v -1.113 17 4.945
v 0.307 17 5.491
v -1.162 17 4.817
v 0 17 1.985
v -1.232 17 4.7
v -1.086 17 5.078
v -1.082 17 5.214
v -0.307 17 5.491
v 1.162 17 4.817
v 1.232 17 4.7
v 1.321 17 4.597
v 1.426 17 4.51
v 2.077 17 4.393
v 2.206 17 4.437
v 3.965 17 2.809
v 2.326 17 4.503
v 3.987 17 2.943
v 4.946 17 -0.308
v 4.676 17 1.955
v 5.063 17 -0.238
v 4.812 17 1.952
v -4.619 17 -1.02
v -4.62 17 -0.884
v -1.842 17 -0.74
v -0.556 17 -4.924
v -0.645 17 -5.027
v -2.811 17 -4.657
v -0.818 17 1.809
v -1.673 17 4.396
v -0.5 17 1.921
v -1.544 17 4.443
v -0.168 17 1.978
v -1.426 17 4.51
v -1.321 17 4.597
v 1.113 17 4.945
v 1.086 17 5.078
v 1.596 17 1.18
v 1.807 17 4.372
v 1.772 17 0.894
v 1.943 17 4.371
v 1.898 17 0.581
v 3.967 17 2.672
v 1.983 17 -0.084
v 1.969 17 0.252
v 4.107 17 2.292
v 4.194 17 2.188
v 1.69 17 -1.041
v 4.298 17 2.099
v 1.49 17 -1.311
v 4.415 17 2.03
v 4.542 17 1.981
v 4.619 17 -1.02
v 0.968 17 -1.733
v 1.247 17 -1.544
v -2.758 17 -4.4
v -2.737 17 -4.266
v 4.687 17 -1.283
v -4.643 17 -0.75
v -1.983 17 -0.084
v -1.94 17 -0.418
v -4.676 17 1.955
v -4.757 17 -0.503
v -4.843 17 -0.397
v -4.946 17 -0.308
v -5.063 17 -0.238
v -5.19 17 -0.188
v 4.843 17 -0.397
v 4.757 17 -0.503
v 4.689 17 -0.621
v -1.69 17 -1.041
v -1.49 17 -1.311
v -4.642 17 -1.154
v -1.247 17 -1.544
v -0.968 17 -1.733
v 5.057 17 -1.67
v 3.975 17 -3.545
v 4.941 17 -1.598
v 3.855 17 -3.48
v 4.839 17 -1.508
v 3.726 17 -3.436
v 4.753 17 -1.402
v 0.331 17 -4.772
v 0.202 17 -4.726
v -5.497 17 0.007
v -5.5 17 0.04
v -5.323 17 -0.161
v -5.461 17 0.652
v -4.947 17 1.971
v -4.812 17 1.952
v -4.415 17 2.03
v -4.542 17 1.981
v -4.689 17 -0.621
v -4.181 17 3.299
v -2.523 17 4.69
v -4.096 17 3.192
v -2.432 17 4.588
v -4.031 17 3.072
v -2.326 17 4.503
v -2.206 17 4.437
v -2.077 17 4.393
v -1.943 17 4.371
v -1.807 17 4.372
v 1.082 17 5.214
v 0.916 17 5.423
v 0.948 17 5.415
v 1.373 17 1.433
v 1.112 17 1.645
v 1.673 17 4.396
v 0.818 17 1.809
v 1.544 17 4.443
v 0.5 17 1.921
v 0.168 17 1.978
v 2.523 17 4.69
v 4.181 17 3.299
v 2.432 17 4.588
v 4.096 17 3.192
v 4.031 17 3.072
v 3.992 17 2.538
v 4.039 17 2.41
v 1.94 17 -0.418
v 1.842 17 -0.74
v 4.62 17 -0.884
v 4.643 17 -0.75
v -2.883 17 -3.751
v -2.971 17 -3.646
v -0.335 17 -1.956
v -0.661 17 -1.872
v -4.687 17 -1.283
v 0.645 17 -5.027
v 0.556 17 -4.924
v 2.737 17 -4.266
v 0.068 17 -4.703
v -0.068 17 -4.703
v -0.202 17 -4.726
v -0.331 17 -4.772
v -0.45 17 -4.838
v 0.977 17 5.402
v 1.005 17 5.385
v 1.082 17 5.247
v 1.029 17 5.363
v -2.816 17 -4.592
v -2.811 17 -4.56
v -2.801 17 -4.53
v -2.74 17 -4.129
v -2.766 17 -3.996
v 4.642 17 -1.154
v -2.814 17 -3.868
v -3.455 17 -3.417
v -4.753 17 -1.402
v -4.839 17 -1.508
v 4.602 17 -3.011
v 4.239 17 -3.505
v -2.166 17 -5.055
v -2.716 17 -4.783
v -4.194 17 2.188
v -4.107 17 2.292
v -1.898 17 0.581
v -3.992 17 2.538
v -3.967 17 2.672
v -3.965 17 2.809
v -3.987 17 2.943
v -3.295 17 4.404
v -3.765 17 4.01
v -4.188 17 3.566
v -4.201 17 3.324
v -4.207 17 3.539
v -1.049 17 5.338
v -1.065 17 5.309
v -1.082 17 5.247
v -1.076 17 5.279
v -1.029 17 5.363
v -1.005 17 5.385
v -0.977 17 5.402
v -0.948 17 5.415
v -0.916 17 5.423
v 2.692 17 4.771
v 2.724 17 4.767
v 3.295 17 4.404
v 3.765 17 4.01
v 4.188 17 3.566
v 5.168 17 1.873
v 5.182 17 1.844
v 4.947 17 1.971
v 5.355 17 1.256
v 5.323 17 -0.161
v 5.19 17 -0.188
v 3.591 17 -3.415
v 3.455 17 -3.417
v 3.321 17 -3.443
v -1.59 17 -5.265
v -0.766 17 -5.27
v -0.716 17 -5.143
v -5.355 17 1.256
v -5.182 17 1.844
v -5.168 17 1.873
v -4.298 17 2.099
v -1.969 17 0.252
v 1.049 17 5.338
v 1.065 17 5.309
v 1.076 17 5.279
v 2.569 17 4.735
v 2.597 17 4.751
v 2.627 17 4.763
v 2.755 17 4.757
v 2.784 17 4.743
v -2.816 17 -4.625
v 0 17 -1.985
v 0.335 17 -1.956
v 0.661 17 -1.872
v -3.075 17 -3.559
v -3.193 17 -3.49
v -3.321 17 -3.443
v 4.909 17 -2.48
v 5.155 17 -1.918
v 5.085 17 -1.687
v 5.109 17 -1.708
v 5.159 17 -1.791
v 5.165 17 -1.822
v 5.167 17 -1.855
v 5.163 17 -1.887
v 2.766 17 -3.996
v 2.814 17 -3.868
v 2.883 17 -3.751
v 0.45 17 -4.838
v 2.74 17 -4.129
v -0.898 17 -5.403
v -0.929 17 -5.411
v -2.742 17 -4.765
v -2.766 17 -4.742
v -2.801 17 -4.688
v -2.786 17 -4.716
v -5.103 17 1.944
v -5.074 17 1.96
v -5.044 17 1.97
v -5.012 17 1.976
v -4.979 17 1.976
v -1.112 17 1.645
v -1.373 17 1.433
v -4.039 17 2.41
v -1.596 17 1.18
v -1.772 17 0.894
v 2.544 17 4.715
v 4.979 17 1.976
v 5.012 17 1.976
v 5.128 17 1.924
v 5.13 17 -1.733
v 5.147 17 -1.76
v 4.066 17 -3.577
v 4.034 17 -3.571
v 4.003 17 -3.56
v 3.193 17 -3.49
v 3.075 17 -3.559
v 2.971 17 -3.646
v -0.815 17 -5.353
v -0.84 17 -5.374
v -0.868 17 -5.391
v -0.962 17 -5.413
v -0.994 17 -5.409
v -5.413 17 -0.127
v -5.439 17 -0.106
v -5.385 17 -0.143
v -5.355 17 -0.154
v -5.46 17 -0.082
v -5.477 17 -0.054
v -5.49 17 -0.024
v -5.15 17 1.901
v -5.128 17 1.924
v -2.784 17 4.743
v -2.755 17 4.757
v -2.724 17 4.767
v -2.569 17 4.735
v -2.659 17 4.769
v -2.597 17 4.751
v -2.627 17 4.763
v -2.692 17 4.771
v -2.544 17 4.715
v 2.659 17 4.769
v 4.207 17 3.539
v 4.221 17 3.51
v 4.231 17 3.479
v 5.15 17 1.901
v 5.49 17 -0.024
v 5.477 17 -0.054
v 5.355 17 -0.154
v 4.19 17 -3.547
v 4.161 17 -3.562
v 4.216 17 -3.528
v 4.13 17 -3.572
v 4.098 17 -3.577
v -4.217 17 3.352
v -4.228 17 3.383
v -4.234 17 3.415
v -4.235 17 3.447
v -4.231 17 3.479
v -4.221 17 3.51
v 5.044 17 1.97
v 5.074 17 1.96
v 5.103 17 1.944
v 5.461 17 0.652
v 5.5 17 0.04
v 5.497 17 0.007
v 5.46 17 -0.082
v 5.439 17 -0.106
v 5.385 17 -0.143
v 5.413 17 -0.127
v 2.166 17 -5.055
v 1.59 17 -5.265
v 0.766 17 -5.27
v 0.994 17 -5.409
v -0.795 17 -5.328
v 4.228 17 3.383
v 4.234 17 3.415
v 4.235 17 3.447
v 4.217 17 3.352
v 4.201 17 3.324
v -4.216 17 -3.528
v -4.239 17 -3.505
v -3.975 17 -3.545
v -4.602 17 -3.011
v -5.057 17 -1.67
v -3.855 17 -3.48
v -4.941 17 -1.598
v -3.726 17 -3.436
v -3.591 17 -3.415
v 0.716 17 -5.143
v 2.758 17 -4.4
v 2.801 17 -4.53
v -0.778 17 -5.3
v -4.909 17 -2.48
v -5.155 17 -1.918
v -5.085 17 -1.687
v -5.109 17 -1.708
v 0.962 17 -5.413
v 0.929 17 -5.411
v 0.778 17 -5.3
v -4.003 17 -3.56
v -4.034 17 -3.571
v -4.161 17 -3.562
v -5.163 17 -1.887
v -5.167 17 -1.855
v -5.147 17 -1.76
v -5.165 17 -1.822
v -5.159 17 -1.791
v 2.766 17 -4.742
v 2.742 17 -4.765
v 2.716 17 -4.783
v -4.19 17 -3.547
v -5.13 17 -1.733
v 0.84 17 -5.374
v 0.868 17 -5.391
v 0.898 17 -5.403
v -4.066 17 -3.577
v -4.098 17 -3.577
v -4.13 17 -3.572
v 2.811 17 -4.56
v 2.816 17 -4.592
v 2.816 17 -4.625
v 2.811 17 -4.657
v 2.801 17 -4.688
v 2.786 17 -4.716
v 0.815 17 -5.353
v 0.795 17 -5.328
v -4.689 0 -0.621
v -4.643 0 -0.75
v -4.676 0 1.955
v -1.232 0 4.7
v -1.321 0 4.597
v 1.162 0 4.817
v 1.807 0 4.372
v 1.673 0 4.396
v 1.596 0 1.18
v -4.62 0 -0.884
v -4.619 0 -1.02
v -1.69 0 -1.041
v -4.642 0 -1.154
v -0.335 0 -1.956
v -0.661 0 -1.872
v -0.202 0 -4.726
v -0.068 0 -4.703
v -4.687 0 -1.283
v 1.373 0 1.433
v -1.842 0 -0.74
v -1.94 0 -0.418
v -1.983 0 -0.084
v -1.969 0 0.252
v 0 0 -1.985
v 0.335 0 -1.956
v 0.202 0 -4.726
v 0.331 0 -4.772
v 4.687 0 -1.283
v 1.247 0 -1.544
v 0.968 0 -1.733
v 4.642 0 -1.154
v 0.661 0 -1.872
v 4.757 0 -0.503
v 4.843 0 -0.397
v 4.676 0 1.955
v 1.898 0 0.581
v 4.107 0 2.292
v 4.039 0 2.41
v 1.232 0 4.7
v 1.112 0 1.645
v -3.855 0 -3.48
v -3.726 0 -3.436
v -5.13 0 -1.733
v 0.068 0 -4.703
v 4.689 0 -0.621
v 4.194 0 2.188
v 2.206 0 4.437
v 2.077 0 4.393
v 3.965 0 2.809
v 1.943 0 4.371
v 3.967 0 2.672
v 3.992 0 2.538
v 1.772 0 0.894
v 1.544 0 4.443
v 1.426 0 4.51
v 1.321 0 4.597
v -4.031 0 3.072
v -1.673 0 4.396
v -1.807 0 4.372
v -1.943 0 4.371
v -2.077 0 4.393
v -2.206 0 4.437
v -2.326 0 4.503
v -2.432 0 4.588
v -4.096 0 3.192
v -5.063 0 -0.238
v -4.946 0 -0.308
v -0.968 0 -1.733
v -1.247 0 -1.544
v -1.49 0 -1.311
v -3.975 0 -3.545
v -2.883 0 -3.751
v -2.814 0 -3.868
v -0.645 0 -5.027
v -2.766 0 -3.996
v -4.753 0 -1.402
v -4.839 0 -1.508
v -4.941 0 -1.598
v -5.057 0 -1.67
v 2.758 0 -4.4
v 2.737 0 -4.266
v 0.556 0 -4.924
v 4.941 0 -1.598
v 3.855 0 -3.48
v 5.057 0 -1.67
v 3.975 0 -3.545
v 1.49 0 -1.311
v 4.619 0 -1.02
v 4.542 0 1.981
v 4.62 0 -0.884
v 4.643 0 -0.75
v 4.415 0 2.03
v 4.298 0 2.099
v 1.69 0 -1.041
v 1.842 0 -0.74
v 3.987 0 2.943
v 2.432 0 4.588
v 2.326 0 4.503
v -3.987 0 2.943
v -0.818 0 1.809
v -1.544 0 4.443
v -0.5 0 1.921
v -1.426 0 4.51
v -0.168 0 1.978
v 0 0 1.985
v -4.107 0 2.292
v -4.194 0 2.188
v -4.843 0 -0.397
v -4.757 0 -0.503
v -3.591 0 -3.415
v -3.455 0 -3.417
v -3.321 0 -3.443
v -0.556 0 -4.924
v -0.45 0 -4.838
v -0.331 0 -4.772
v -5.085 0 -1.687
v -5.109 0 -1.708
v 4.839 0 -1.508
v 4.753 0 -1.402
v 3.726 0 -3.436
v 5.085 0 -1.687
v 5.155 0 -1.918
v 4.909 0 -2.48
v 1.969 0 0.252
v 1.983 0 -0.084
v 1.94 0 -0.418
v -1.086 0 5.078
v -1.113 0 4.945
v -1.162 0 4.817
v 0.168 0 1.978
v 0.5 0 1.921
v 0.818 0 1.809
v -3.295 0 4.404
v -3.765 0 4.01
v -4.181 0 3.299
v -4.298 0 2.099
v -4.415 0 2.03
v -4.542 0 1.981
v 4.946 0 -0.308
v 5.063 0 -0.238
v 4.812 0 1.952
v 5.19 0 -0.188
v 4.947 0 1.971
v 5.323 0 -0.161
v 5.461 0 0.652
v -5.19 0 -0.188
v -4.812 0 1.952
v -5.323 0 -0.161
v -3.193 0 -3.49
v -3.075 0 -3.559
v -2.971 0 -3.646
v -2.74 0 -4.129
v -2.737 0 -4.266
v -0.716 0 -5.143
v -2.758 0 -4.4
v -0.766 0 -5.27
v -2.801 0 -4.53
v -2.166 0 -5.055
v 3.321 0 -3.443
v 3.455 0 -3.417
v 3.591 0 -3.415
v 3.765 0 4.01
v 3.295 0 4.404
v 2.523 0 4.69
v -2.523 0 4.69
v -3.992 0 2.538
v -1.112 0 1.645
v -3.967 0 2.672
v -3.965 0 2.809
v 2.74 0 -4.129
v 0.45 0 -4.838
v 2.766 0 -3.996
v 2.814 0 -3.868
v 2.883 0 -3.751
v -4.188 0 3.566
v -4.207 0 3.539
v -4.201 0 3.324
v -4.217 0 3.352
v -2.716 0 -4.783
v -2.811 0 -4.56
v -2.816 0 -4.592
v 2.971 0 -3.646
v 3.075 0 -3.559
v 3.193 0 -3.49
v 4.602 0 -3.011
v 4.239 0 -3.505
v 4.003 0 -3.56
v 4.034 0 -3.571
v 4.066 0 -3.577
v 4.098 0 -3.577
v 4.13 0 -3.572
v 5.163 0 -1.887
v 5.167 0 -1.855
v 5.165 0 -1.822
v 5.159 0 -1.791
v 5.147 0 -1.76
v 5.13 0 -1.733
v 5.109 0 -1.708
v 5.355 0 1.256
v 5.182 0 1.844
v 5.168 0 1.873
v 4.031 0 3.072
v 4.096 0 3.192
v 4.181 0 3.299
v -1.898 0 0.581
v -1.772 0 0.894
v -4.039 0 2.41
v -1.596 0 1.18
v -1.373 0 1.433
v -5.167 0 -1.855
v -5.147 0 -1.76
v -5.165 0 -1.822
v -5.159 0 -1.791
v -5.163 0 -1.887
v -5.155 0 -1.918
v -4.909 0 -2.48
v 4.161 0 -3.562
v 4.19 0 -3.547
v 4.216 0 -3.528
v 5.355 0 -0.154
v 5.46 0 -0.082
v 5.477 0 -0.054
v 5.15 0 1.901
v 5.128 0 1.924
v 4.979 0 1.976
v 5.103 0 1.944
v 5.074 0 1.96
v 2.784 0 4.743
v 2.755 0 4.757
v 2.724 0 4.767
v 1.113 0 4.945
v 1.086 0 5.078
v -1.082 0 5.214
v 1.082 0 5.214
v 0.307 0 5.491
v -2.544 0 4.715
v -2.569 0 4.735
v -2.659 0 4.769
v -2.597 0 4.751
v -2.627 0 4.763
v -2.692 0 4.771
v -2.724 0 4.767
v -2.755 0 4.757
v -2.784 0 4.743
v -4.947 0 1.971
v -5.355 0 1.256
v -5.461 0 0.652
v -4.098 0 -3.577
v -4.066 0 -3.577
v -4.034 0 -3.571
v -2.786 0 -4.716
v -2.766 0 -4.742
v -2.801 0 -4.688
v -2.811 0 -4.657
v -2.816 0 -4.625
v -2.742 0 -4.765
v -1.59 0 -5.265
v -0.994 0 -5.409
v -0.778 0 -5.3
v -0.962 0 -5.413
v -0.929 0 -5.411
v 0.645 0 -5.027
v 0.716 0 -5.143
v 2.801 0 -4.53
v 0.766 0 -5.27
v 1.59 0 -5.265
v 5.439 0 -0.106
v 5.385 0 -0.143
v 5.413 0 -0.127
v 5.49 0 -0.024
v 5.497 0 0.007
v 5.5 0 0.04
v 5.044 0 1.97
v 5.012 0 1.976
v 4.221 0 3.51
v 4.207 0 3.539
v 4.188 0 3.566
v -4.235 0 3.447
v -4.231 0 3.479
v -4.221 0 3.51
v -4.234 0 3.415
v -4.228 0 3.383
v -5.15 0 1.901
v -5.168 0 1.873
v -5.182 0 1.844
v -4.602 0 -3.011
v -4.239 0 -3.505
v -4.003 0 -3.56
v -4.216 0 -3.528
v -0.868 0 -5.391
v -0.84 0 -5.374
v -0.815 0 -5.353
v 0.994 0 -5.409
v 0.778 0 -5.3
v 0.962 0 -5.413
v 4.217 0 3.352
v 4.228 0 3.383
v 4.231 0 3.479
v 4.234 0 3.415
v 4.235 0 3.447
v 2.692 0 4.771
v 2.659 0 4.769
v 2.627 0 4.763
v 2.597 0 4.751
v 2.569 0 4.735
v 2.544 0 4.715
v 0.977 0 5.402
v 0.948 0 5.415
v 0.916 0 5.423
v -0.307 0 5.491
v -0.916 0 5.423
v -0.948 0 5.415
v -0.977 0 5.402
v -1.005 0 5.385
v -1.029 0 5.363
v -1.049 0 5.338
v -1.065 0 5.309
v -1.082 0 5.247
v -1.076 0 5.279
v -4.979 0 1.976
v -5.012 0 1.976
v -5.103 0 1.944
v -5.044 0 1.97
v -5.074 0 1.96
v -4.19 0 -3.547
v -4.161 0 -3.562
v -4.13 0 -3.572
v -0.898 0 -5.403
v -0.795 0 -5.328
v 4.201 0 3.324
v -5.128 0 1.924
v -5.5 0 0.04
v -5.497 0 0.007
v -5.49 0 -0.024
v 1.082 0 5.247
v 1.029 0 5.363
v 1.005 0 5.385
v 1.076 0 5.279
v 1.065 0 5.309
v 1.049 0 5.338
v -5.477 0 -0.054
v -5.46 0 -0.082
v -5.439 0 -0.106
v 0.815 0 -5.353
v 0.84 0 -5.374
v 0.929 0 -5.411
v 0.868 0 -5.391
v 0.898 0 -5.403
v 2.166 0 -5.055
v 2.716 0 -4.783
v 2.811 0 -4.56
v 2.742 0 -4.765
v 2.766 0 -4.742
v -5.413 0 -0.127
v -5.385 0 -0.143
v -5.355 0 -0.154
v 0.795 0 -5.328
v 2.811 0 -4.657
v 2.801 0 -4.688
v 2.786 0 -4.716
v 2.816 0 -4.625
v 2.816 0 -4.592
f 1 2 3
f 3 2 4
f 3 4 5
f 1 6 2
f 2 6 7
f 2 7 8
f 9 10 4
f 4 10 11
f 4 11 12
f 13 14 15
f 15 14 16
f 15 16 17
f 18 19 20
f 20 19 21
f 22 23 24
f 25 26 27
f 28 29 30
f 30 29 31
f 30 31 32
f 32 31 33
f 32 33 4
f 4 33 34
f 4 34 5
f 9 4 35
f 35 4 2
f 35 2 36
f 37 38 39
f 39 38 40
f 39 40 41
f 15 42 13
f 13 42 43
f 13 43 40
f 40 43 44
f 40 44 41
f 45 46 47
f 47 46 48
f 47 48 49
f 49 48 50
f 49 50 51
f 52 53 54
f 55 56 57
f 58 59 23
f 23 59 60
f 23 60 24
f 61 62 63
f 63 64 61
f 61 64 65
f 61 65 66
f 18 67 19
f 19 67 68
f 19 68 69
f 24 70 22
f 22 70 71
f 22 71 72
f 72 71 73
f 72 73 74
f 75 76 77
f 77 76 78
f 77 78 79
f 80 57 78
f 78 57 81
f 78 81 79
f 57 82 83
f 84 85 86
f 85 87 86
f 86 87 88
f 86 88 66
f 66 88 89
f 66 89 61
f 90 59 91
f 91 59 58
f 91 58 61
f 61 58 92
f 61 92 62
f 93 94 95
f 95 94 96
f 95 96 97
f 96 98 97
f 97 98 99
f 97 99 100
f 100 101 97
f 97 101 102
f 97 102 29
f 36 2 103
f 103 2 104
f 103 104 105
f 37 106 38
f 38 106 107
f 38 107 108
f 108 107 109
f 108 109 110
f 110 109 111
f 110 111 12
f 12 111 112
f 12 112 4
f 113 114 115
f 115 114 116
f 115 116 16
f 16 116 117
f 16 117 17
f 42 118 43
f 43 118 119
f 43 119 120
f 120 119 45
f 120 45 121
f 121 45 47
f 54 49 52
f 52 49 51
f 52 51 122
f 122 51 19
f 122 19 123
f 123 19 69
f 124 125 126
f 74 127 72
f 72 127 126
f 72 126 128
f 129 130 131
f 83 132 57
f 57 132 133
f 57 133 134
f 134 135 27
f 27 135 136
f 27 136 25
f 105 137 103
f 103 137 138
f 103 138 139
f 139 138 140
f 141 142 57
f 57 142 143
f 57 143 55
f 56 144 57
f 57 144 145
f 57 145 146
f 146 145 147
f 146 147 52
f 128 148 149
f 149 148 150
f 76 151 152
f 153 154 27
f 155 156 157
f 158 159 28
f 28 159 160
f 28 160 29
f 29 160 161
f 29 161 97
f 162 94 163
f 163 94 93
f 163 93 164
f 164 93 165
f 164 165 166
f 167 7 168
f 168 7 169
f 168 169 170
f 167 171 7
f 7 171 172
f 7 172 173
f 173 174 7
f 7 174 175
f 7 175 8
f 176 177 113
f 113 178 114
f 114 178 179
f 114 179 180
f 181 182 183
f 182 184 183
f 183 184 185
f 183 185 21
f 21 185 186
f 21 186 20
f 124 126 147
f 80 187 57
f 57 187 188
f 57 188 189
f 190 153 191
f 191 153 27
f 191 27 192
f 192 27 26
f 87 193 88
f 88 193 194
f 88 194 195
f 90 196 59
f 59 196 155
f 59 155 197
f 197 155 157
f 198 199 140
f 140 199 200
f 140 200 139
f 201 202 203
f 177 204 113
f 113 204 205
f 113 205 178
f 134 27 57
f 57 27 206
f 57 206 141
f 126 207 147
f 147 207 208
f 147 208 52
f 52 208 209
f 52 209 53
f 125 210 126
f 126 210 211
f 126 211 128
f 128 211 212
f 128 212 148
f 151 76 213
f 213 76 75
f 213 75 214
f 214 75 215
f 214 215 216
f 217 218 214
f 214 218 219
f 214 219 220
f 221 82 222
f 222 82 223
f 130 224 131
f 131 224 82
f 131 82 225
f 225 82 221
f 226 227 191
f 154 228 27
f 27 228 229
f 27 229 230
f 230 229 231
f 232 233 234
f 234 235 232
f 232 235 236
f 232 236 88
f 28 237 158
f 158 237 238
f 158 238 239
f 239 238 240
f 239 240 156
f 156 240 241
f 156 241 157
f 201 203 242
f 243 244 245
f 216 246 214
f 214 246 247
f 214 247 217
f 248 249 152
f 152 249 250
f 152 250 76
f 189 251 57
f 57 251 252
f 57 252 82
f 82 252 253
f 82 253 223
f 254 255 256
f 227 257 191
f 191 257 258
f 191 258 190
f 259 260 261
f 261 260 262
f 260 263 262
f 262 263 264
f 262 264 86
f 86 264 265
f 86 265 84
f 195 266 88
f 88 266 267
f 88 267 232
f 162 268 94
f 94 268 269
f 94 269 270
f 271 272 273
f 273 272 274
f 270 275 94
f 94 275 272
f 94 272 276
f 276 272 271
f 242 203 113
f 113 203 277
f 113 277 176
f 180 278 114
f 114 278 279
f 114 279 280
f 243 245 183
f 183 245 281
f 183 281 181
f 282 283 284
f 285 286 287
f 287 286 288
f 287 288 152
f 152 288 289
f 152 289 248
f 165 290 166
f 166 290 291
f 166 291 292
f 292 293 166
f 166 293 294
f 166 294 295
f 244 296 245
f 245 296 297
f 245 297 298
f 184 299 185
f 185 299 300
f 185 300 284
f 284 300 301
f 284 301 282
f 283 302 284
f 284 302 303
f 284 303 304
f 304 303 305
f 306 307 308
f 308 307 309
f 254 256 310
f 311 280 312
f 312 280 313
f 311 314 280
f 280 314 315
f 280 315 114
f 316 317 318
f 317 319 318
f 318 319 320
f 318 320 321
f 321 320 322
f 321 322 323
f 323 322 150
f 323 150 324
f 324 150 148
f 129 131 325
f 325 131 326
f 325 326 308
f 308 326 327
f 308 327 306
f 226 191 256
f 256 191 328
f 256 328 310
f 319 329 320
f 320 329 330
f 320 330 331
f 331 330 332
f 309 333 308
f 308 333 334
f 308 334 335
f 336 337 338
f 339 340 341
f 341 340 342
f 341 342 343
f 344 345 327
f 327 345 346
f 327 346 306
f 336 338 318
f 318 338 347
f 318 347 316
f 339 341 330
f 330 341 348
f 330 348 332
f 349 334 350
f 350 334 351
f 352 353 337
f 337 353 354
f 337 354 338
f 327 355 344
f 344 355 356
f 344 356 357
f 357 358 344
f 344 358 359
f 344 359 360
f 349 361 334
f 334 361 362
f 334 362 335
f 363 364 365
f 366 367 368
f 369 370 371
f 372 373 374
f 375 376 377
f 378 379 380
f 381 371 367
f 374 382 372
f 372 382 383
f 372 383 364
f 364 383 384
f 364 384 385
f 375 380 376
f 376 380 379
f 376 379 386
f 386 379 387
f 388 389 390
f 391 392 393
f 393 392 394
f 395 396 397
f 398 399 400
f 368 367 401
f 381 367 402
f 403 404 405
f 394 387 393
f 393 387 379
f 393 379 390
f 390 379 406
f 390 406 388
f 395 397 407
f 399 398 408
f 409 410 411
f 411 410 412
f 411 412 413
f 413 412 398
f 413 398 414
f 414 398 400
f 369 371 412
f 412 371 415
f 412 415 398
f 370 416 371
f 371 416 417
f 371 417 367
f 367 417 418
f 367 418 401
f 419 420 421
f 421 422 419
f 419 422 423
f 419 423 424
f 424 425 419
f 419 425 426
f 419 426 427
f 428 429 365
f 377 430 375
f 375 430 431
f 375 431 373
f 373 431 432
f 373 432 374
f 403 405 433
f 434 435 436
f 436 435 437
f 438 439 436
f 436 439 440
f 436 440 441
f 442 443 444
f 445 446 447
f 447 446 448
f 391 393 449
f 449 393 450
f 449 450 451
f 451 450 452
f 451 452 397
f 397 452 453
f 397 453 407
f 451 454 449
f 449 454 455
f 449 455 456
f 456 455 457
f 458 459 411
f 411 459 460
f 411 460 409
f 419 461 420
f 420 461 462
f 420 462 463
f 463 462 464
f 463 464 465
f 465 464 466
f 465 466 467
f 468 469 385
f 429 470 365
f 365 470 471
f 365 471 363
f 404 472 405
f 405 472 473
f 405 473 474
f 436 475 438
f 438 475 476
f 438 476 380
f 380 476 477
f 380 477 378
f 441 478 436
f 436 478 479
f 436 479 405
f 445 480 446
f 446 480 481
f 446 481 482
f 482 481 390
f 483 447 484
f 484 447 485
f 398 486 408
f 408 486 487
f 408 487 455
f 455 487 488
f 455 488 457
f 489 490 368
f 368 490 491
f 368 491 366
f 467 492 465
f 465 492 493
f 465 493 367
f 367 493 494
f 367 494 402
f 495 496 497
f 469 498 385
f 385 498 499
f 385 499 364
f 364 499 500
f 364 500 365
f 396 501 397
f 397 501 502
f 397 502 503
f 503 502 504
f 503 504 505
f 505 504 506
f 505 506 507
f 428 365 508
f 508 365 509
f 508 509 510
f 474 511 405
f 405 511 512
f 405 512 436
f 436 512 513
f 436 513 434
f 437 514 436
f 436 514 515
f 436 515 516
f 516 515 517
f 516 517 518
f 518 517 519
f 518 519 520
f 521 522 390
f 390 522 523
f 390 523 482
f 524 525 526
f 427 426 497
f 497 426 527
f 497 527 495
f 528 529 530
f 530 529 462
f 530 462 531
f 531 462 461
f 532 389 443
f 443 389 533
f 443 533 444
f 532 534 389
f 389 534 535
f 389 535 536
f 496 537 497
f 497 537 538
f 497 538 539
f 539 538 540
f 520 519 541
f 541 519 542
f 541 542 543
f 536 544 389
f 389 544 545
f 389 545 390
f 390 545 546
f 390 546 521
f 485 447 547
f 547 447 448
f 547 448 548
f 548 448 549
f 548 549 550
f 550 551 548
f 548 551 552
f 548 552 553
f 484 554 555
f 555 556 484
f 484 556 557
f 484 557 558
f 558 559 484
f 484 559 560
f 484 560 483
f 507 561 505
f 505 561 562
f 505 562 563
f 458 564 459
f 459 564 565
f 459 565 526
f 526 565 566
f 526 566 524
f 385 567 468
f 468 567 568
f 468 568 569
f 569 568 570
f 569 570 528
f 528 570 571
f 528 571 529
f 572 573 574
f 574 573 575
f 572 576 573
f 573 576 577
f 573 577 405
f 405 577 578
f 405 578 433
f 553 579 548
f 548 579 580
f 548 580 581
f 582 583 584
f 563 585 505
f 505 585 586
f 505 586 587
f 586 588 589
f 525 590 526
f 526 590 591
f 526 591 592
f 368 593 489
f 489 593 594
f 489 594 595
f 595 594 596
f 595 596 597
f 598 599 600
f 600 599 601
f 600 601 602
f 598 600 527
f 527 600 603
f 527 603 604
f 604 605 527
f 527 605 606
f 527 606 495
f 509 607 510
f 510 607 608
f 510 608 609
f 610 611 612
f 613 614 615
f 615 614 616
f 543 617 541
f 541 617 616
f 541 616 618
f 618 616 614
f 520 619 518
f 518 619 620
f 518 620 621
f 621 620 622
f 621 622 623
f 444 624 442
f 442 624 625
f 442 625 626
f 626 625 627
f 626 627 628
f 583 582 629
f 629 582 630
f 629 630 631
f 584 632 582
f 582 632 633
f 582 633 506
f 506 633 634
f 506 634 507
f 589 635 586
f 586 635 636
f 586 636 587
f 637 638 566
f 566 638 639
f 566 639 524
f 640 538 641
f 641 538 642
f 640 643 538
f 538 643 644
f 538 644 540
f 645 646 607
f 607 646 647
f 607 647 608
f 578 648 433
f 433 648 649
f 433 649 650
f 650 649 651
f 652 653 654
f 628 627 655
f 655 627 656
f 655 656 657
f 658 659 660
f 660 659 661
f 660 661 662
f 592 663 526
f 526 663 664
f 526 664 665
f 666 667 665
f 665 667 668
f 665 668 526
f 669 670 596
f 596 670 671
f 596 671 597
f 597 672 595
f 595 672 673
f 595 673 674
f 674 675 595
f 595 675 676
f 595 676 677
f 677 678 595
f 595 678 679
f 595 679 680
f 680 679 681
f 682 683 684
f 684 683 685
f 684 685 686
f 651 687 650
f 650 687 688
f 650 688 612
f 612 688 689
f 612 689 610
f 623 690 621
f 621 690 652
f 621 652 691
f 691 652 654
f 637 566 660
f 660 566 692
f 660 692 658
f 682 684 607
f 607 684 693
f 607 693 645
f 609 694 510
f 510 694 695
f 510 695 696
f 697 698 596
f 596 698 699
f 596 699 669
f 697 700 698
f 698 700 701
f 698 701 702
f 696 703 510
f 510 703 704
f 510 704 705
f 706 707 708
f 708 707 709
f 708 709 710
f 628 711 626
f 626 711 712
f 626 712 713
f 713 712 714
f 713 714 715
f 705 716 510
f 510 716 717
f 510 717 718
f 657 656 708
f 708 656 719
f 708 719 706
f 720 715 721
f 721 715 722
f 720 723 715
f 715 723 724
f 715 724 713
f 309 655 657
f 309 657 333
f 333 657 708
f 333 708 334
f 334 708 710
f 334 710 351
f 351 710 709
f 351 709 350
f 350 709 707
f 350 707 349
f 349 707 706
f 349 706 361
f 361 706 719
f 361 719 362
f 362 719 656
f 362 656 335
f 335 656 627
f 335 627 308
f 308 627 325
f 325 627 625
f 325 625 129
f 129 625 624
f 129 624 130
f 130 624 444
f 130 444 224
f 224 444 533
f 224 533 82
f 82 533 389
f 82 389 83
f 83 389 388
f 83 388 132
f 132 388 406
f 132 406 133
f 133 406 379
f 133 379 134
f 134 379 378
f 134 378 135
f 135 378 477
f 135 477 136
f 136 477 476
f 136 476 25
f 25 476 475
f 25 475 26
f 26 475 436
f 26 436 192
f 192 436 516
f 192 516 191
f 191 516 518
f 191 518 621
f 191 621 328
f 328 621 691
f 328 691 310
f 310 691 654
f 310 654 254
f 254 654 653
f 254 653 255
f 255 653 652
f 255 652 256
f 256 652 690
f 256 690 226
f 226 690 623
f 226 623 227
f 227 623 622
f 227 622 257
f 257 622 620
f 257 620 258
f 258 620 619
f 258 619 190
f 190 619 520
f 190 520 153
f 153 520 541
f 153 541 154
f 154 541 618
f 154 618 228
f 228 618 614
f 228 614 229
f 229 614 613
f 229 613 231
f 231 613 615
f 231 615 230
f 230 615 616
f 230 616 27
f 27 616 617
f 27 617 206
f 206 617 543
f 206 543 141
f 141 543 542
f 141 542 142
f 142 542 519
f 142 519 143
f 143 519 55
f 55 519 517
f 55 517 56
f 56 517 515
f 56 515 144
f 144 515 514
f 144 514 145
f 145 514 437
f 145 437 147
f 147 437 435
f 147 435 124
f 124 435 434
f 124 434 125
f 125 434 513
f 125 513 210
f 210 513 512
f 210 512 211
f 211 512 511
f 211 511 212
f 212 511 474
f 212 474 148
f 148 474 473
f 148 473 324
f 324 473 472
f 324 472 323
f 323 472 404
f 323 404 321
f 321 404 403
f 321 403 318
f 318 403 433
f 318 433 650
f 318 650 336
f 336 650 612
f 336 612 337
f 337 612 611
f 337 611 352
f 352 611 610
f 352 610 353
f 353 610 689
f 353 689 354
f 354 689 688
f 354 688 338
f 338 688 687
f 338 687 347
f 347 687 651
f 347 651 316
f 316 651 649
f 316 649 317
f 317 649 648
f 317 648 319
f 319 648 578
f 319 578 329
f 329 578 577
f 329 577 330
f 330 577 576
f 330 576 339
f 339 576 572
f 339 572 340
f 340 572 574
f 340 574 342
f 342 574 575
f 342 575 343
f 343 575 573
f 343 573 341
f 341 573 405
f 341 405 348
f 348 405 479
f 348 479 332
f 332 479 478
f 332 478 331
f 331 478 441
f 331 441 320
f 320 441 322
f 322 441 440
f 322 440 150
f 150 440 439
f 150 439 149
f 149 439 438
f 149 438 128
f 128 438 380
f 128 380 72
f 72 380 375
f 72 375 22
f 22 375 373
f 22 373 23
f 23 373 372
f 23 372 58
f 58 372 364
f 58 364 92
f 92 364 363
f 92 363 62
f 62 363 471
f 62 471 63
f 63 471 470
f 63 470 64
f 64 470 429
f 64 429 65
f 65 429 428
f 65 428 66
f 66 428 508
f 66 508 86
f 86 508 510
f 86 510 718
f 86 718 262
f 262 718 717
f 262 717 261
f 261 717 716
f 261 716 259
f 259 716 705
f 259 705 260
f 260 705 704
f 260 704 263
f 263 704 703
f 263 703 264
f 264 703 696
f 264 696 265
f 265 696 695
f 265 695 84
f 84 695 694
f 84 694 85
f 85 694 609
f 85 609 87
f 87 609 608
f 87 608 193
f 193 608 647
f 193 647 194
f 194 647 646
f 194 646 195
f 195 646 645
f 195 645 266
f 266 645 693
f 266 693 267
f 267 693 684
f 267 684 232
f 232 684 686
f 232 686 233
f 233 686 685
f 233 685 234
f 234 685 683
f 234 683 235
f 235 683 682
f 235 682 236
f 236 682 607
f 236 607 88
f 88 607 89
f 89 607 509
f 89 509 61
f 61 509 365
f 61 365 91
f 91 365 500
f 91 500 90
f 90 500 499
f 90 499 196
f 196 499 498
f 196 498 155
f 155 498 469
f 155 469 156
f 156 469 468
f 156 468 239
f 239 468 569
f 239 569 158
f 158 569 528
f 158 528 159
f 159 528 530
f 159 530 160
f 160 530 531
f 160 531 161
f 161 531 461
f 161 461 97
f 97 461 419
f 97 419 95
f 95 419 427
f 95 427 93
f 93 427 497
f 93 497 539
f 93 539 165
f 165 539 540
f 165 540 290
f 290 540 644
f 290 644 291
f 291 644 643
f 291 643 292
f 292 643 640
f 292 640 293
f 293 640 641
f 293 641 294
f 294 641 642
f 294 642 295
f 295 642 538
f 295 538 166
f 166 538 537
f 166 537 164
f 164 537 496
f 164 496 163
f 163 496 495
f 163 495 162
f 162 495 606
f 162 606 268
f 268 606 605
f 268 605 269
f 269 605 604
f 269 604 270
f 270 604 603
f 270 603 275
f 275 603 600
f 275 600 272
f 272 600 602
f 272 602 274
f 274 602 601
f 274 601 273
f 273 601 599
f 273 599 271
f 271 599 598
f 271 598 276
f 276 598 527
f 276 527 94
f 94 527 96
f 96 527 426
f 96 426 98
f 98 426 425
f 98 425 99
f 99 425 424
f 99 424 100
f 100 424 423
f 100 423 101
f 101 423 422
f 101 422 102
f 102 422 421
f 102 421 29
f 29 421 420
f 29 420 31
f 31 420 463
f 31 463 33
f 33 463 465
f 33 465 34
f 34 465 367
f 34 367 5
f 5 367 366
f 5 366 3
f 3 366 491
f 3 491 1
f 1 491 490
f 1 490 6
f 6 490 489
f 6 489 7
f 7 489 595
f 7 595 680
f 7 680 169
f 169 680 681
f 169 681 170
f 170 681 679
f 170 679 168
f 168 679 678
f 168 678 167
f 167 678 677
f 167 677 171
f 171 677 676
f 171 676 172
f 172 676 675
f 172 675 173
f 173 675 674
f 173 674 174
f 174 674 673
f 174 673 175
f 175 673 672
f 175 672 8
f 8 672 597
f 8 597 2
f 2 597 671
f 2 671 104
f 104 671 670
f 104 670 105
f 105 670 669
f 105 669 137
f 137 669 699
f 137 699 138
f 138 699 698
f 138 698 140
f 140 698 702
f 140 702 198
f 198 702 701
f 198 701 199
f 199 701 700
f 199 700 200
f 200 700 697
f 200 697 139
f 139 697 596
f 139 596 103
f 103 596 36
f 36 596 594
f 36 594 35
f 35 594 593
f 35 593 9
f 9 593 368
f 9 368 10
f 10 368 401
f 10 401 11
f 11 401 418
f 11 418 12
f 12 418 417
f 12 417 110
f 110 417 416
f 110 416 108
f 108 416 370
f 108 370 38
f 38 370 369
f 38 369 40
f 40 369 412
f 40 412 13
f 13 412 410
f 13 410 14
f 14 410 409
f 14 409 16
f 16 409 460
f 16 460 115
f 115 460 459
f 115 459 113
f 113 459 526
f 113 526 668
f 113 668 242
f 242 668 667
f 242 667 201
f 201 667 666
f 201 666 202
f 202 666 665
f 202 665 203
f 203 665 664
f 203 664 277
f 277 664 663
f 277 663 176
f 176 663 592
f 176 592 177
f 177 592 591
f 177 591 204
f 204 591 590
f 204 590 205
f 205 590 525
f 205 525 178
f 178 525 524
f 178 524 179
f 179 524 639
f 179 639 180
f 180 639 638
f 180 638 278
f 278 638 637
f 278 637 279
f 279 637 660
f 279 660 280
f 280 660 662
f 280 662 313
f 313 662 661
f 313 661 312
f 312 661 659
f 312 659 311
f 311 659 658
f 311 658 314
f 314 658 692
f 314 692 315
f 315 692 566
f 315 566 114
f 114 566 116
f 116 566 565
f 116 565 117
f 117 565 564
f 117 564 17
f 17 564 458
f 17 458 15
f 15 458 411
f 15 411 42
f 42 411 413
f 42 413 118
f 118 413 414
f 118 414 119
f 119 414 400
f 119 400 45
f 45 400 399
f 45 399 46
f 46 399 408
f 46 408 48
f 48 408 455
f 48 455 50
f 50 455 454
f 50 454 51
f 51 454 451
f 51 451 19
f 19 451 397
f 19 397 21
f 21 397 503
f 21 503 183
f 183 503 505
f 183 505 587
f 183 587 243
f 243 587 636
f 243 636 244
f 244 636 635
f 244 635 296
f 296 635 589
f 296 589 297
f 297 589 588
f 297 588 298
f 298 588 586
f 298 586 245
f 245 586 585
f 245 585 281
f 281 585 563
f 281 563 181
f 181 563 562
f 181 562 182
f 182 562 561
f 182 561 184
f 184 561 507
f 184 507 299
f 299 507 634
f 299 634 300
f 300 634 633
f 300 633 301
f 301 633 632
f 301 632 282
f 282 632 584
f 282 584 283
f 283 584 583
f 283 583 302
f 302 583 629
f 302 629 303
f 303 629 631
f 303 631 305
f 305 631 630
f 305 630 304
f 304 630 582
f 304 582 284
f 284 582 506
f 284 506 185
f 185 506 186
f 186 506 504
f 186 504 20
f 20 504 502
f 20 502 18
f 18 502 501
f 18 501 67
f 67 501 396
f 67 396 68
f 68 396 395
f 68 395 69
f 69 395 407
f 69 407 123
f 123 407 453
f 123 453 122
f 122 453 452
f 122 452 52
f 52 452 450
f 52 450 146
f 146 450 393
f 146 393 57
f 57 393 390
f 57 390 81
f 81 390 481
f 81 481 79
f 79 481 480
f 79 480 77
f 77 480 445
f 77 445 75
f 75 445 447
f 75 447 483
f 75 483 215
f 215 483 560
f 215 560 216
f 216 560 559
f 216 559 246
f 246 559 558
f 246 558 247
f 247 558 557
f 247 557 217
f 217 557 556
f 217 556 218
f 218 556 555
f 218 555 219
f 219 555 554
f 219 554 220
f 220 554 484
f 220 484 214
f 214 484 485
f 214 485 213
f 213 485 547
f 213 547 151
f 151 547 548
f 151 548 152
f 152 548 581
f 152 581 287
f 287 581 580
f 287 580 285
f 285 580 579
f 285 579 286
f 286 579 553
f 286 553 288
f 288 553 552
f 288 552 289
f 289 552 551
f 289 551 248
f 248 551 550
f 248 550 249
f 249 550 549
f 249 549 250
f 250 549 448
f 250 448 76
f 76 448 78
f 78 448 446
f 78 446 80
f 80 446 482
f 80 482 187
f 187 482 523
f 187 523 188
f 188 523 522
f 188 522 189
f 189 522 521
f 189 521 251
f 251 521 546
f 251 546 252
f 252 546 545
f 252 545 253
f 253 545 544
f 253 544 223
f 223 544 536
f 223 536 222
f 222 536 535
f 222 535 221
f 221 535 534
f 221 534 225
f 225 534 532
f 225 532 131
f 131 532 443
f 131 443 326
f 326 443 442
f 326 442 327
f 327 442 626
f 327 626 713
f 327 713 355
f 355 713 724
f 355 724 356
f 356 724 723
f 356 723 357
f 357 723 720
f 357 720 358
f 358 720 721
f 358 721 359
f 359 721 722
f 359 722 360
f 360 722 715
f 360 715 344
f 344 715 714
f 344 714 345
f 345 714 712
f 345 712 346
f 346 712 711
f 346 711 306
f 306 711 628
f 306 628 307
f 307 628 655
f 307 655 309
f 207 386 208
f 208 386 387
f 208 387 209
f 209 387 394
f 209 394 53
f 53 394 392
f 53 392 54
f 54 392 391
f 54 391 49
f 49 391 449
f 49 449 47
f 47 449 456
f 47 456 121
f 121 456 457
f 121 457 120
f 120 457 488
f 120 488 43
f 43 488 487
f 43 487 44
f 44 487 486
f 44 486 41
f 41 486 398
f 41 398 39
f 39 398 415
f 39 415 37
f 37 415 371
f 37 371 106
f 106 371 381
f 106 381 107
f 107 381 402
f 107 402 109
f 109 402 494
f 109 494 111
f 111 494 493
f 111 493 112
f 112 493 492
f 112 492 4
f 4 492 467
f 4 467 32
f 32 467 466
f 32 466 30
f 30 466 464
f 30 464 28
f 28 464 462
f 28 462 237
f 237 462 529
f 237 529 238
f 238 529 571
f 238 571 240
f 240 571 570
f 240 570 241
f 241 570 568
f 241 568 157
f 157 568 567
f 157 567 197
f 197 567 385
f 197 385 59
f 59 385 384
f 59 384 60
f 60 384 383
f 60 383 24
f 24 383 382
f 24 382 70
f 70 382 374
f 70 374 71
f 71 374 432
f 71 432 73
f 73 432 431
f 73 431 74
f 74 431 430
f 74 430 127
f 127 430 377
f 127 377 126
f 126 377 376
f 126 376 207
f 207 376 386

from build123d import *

# Parameters (mm, degrees)
SKETCH1_R           = 1.985
BOSS_EXTRUDE1_DEPTH = 17


with BuildPart() as part:
    # Sketch1 → Boss-Extrude1 (new body)
    with BuildSketch(Plane(origin=(0, 0, 0), x_dir=(1, 0, 0), z_dir=(0, 1, 0))):
        with BuildLine():
            ThreePointArc((-0.993994068, 5.409433962), (-1.881110788, 5.168309414), (-2.715673494, 4.782793898))
            ThreePointArc((-2.715673494, 4.782793898), (-2.806527228, 4.672511809), (-2.800603755, 4.529748184))
            ThreePointArc((-2.800603755, 4.529748184), (-3.021101766, 3.600408883), (-3.974611392, 3.544638808))
            ThreePointArc((-3.974611392, 3.544638808), (-4.114177517, 3.575262934), (-4.238560759, 3.504939756))
            ThreePointArc((-4.238560759, 3.504939756), (-4.763139721, 2.75), (-5.154647247, 1.918231415))
            ThreePointArc((-5.154647247, 1.918231415), (-5.153357284, 1.775350778), (-5.057052951, 1.669795032))
            ThreePointArc((-5.057052951, 1.669795032), (-4.628596439, 0.816146435), (-5.323178877, 0.160519906))
            ThreePointArc((-5.323178877, 0.160519906), (-5.44977754, 0.094267971), (-5.499857764, -0.039554715))
            ThreePointArc((-5.499857764, -0.039554715), (-5.416442642, -0.955064977), (-5.181704266, -1.843892867))
            ThreePointArc((-5.181704266, -1.843892867), (-5.088874194, -1.952516612), (-4.947250869, -1.971473774))
            ThreePointArc((-4.947250869, -1.971473774), (-4.070319398, -2.35), (-4.180971805, -3.298708045))
            ThreePointArc((-4.180971805, -3.298708045), (-4.235366084, -3.430836023), (-4.187710197, -3.565541096))
            ThreePointArc((-4.187710197, -3.565541096), (-3.535331853, -4.213244437), (-2.78418427, -4.743239183))
            ThreePointArc((-2.78418427, -4.743239183), (-2.643250312, -4.76677978), (-2.522575122, -4.69026809))
            ThreePointArc((-2.522575122, -4.69026809), (-1.607494674, -4.416555318), (-1.082441559, -5.21443384))
            ThreePointArc((-1.082441559, -5.21443384), (-1.039179767, -5.350613712), (-0.916086488, -5.423171171))
            ThreePointArc((-0.916086488, -5.423171171), (0, -5.5), (0.916086488, -5.423171171))
            ThreePointArc((0.916086488, -5.423171171), (1.039179767, -5.350613712), (1.082441559, -5.21443384))
            ThreePointArc((1.082441559, -5.21443384), (1.607494674, -4.416555318), (2.522575122, -4.69026809))
            ThreePointArc((2.522575122, -4.69026809), (2.643250312, -4.76677978), (2.78418427, -4.743239183))
            ThreePointArc((2.78418427, -4.743239183), (3.535331853, -4.213244437), (4.187710197, -3.565541096))
            ThreePointArc((4.187710197, -3.565541096), (4.235366084, -3.430836023), (4.180971805, -3.298708045))
            ThreePointArc((4.180971805, -3.298708045), (4.070319398, -2.35), (4.947250869, -1.971473774))
            ThreePointArc((4.947250869, -1.971473774), (5.088874194, -1.952516612), (5.181704266, -1.843892867))
            ThreePointArc((5.181704266, -1.843892867), (5.416442642, -0.955064977), (5.499857764, -0.039554715))
            ThreePointArc((5.499857764, -0.039554715), (5.44977754, 0.094267971), (5.323178877, 0.160519906))
            ThreePointArc((5.323178877, 0.160519906), (4.628596439, 0.816146435), (5.057052951, 1.669795032))
            ThreePointArc((5.057052951, 1.669795032), (5.153357284, 1.775350778), (5.154647247, 1.918231415))
            ThreePointArc((5.154647247, 1.918231415), (4.763139721, 2.75), (4.238560759, 3.504939756))
            ThreePointArc((4.238560759, 3.504939756), (4.114177517, 3.575262934), (3.974611392, 3.544638808))
            ThreePointArc((3.974611392, 3.544638808), (3.021101766, 3.600408883), (2.800603755, 4.529748184))
            ThreePointArc((2.800603755, 4.529748184), (2.806527228, 4.672511809), (2.715673494, 4.782793898))
            ThreePointArc((2.715673494, 4.782793898), (1.881110788, 5.168309414), (0.993994068, 5.409433962))
            ThreePointArc((0.993994068, 5.409433962), (0.85350811, 5.383352635), (0.766279064, 5.270181818))
            ThreePointArc((0.766279064, 5.270181818), (0, 4.7), (-0.766279064, 5.270181818))
            ThreePointArc((-0.766279064, 5.270181818), (-0.85350811, 5.383352635), (-0.993994068, 5.409433962))
        make_face()
        with Locations(Location((0, 0, 0), (0, 0, 270))):
            Circle(SKETCH1_R, mode=Mode.SUBTRACT)
    extrude(amount=BOSS_EXTRUDE1_DEPTH)


solid = part.part
